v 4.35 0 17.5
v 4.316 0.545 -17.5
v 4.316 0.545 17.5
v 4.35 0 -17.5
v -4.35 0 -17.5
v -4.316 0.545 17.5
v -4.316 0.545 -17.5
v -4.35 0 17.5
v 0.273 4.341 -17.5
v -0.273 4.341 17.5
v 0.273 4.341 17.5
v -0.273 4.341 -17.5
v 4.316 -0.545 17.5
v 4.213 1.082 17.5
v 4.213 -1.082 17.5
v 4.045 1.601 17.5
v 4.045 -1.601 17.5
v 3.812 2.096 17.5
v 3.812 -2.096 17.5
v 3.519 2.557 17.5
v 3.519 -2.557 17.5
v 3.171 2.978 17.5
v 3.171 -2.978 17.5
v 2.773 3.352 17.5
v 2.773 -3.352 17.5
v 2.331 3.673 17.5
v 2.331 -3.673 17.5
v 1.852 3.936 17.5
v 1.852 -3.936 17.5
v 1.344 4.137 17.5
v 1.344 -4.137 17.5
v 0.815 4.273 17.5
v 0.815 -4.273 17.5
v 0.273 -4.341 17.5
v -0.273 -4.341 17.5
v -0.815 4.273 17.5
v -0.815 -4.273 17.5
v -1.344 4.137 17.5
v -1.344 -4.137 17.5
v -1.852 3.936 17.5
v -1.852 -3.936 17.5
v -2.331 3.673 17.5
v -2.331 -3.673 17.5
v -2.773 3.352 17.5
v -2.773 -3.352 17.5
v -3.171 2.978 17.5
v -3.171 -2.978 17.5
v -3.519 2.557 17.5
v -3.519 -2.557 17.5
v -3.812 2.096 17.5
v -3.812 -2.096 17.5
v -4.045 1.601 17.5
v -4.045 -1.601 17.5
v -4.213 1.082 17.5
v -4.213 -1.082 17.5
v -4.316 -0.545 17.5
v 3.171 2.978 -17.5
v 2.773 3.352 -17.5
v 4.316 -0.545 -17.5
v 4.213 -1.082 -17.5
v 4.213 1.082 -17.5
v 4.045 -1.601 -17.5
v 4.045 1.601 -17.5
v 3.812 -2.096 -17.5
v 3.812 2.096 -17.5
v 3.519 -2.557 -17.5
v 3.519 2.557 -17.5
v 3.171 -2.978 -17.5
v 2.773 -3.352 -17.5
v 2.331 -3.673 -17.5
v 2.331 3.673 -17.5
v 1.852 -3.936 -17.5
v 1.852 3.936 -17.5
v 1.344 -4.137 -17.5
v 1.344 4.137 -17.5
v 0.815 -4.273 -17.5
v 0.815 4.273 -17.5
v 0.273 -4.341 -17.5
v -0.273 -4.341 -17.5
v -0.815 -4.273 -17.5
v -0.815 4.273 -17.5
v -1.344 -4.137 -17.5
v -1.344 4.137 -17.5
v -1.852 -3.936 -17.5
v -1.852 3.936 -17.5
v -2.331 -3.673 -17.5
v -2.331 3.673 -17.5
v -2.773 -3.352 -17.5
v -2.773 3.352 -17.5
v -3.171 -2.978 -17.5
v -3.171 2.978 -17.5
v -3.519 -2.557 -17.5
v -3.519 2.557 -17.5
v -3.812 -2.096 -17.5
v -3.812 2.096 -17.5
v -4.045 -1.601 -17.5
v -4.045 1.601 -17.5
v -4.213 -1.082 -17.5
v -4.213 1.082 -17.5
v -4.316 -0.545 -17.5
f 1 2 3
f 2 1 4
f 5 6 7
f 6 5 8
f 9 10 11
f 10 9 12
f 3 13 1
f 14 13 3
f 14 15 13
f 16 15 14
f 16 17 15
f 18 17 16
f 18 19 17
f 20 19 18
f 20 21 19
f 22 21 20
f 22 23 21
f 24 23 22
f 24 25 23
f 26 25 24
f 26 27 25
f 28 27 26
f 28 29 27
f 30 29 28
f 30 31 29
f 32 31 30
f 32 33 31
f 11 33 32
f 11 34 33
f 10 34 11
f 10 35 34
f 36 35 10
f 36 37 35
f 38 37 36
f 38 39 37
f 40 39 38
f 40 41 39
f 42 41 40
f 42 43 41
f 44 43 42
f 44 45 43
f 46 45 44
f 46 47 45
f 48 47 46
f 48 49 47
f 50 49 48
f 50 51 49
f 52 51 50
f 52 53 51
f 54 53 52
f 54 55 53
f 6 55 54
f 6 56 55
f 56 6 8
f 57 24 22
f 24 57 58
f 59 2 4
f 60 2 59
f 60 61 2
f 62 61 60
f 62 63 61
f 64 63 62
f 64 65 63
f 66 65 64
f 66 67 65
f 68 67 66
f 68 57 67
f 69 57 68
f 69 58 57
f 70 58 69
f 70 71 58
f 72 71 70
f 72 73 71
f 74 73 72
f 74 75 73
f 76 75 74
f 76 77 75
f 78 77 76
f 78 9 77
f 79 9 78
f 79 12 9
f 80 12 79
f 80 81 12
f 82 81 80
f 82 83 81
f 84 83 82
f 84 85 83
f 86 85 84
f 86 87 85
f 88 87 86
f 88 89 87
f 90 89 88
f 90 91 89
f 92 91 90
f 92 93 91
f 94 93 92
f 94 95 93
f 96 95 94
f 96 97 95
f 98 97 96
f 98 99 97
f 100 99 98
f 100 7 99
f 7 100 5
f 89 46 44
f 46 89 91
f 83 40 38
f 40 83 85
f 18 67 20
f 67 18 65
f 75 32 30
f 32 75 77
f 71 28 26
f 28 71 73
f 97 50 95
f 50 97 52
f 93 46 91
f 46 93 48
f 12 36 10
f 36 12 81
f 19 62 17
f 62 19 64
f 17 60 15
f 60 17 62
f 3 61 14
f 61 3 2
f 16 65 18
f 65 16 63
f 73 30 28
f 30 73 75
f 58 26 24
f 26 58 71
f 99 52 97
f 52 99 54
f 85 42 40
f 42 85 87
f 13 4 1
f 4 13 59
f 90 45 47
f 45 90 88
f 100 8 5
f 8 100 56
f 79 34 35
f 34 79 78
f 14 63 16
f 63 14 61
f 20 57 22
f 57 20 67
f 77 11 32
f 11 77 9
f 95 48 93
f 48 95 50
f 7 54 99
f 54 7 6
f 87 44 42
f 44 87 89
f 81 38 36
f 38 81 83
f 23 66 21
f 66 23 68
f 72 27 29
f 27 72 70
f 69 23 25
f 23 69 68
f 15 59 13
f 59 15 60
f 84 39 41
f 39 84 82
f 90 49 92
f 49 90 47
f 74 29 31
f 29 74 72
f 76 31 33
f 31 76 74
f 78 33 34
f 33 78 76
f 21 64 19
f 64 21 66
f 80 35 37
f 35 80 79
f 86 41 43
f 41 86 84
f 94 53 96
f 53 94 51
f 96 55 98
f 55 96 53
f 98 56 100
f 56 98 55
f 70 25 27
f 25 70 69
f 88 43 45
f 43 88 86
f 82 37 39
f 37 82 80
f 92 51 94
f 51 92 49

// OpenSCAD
$fn = 50;


difference() {
	union() {
		translate(v = [0, 0, -17.5000000000]) {
			cylinder(h = 35, r = 4.3500000000);
		}
	}
	union() {
		translate(v = [0, 0, -100.0000000000]) {
			cylinder(h = 200, r = 0);
		}
	}
}
